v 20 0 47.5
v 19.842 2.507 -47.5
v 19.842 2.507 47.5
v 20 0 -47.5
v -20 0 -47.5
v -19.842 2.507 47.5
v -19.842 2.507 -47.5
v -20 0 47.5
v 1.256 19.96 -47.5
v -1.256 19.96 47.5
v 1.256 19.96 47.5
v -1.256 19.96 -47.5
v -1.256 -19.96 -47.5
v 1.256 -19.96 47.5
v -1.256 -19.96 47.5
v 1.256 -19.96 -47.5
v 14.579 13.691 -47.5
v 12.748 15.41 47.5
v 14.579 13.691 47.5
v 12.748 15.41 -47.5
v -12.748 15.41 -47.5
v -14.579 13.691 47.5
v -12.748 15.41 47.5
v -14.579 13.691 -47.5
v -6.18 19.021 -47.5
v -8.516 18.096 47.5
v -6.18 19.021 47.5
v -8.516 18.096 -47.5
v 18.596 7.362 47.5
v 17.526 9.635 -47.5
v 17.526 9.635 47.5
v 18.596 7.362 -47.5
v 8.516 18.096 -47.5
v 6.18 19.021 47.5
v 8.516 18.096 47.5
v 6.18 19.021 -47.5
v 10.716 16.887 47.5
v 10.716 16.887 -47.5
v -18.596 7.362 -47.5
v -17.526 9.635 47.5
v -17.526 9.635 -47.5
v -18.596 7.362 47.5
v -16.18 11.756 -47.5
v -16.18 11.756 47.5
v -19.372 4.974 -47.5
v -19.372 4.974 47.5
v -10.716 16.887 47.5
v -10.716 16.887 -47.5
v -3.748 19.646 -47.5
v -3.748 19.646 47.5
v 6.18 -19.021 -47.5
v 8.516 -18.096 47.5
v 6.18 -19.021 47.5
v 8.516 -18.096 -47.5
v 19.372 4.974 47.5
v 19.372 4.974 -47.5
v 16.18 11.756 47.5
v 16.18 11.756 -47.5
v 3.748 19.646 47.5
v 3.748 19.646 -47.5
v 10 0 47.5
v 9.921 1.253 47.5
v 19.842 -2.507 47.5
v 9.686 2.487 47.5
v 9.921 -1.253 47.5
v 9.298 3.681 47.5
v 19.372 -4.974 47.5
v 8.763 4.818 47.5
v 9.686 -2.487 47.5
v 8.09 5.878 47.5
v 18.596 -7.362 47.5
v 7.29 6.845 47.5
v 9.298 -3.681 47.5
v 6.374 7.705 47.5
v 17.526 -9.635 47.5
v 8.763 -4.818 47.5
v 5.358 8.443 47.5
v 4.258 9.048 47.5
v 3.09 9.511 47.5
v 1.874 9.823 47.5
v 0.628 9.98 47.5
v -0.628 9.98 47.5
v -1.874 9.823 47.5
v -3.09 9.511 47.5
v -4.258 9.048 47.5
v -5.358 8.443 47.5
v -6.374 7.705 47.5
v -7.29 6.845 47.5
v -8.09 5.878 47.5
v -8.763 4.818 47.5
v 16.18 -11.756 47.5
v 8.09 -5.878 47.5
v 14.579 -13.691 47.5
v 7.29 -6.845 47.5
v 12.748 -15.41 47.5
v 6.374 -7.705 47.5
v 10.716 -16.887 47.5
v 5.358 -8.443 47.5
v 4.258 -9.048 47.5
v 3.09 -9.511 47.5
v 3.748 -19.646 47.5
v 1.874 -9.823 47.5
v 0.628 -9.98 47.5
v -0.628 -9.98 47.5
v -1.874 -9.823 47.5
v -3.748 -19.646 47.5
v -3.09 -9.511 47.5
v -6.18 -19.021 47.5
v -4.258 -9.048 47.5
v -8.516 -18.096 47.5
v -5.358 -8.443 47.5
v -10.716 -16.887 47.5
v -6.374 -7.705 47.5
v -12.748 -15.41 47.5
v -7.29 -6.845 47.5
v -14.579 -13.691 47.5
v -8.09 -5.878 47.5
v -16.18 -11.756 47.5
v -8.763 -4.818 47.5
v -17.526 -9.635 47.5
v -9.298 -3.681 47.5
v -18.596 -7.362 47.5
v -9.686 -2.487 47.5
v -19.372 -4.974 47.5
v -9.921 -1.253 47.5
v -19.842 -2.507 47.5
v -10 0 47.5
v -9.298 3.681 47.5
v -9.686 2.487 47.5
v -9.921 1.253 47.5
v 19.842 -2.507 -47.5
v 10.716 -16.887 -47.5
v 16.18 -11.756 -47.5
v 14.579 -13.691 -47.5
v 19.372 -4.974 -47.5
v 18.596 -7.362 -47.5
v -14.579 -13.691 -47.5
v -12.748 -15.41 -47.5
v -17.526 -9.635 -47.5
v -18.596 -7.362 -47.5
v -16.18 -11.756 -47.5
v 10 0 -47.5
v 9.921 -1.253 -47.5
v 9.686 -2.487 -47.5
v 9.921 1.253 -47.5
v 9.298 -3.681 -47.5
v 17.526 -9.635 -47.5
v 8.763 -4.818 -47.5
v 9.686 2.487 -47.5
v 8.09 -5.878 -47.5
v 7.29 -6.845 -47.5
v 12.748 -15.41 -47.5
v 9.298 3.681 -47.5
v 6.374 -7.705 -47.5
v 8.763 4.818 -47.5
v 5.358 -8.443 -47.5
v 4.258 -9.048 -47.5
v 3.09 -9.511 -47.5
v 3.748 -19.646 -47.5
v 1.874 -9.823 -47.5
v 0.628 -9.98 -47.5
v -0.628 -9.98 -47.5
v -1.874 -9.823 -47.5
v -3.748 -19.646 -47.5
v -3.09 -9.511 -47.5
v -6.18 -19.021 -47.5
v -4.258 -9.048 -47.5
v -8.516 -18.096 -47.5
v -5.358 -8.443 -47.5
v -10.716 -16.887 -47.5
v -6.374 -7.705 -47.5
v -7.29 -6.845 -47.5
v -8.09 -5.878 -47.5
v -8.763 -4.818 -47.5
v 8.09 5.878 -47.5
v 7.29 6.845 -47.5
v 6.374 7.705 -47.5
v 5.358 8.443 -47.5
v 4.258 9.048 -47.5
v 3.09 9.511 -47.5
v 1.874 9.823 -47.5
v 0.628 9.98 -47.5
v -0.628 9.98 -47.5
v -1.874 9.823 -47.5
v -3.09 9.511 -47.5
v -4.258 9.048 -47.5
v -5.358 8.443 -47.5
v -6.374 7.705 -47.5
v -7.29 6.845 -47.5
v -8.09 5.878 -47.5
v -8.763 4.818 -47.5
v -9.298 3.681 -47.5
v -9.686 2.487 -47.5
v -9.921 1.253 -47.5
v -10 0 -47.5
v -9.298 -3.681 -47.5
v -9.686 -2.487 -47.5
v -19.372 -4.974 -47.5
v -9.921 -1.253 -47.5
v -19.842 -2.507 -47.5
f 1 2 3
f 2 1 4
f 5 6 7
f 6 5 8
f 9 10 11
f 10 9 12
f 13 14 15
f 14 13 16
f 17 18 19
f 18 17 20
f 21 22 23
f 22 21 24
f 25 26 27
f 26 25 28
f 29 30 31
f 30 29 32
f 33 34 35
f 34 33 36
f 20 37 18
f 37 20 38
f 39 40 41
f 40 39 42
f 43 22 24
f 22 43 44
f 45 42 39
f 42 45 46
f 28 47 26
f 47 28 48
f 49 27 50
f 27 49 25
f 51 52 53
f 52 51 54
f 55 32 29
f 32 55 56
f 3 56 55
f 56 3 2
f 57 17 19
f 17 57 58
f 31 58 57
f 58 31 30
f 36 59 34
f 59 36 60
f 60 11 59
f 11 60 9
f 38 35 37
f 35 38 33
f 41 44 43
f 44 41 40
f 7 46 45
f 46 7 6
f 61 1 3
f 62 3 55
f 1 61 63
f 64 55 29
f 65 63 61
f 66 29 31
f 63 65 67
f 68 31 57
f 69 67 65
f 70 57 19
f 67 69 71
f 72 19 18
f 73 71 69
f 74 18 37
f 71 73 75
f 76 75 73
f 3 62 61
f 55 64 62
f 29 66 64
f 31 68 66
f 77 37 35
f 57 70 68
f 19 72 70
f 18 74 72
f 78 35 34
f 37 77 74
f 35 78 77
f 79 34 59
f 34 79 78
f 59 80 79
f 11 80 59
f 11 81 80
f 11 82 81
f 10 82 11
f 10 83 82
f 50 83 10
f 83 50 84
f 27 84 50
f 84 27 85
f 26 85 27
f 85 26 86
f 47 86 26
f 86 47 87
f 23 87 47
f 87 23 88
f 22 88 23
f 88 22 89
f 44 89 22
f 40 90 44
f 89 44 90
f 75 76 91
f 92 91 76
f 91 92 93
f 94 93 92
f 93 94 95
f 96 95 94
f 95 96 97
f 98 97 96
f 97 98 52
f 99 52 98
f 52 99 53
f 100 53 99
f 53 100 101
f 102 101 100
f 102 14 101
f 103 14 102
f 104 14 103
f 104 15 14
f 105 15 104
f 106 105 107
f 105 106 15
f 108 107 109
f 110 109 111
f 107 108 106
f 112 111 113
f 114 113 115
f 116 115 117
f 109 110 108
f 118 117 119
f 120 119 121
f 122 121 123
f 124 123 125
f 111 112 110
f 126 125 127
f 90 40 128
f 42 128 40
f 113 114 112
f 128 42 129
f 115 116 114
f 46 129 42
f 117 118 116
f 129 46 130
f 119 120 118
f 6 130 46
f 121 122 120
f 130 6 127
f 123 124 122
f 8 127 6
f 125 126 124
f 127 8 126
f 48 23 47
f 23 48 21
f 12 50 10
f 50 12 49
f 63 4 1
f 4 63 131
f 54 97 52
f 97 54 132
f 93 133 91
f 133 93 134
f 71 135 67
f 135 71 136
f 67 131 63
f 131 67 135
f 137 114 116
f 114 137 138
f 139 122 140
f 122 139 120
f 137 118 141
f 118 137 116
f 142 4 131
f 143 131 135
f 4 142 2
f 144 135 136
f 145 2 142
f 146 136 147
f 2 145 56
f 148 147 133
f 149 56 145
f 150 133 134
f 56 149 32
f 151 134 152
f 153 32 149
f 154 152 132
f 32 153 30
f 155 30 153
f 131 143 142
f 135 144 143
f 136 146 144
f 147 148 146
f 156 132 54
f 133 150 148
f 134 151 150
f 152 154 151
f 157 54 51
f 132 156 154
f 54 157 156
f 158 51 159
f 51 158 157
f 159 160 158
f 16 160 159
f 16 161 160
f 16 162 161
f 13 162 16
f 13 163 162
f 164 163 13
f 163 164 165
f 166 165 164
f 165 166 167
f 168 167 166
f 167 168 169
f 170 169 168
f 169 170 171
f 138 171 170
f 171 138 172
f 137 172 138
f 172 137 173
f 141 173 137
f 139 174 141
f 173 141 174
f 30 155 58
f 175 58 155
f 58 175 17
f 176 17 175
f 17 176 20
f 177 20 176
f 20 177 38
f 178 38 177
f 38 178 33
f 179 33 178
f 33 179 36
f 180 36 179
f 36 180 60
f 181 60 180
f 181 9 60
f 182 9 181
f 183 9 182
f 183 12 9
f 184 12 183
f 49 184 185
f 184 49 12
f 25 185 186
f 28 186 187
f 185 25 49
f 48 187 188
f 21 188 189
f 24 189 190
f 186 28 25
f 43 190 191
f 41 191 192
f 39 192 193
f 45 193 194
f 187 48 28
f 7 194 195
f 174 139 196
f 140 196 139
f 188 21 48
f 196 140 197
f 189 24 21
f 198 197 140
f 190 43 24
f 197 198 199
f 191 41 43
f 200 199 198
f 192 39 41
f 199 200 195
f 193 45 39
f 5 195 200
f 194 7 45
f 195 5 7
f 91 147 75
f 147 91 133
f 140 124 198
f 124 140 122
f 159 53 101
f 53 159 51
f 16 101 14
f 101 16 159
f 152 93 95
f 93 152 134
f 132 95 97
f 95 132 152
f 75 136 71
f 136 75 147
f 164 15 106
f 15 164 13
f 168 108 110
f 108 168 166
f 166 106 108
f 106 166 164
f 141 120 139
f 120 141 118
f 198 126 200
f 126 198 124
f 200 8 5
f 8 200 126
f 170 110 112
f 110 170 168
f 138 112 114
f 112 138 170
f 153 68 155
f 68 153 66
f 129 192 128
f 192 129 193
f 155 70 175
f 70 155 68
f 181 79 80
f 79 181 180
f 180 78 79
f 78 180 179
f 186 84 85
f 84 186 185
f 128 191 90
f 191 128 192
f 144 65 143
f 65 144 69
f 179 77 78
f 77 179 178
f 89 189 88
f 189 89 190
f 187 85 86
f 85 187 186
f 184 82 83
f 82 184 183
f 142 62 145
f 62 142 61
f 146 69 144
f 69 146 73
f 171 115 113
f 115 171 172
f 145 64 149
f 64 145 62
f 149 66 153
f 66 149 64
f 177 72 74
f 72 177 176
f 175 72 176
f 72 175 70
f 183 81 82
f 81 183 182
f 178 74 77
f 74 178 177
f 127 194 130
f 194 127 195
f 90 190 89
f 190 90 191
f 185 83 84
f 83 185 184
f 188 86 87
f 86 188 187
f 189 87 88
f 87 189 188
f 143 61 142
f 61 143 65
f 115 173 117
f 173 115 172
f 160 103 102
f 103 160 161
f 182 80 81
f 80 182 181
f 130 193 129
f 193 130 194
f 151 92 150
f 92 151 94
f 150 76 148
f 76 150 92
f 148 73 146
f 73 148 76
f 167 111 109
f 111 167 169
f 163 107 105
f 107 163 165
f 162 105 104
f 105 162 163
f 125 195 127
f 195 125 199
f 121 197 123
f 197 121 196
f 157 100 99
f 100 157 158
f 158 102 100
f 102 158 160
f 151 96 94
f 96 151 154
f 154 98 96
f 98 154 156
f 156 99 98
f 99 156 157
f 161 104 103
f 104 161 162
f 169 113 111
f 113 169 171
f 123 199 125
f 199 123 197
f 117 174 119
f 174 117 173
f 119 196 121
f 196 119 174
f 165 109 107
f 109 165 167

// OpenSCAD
$fn = 50;


difference() {
	union() {
		translate(v = [0, 0, -47.5000000000]) {
			cylinder(h = 95, r = 20.0000000000);
		}
	}
	union() {
		translate(v = [0, 0, -100.0000000000]) {
			cylinder(h = 200, r = 10);
		}
	}
}
